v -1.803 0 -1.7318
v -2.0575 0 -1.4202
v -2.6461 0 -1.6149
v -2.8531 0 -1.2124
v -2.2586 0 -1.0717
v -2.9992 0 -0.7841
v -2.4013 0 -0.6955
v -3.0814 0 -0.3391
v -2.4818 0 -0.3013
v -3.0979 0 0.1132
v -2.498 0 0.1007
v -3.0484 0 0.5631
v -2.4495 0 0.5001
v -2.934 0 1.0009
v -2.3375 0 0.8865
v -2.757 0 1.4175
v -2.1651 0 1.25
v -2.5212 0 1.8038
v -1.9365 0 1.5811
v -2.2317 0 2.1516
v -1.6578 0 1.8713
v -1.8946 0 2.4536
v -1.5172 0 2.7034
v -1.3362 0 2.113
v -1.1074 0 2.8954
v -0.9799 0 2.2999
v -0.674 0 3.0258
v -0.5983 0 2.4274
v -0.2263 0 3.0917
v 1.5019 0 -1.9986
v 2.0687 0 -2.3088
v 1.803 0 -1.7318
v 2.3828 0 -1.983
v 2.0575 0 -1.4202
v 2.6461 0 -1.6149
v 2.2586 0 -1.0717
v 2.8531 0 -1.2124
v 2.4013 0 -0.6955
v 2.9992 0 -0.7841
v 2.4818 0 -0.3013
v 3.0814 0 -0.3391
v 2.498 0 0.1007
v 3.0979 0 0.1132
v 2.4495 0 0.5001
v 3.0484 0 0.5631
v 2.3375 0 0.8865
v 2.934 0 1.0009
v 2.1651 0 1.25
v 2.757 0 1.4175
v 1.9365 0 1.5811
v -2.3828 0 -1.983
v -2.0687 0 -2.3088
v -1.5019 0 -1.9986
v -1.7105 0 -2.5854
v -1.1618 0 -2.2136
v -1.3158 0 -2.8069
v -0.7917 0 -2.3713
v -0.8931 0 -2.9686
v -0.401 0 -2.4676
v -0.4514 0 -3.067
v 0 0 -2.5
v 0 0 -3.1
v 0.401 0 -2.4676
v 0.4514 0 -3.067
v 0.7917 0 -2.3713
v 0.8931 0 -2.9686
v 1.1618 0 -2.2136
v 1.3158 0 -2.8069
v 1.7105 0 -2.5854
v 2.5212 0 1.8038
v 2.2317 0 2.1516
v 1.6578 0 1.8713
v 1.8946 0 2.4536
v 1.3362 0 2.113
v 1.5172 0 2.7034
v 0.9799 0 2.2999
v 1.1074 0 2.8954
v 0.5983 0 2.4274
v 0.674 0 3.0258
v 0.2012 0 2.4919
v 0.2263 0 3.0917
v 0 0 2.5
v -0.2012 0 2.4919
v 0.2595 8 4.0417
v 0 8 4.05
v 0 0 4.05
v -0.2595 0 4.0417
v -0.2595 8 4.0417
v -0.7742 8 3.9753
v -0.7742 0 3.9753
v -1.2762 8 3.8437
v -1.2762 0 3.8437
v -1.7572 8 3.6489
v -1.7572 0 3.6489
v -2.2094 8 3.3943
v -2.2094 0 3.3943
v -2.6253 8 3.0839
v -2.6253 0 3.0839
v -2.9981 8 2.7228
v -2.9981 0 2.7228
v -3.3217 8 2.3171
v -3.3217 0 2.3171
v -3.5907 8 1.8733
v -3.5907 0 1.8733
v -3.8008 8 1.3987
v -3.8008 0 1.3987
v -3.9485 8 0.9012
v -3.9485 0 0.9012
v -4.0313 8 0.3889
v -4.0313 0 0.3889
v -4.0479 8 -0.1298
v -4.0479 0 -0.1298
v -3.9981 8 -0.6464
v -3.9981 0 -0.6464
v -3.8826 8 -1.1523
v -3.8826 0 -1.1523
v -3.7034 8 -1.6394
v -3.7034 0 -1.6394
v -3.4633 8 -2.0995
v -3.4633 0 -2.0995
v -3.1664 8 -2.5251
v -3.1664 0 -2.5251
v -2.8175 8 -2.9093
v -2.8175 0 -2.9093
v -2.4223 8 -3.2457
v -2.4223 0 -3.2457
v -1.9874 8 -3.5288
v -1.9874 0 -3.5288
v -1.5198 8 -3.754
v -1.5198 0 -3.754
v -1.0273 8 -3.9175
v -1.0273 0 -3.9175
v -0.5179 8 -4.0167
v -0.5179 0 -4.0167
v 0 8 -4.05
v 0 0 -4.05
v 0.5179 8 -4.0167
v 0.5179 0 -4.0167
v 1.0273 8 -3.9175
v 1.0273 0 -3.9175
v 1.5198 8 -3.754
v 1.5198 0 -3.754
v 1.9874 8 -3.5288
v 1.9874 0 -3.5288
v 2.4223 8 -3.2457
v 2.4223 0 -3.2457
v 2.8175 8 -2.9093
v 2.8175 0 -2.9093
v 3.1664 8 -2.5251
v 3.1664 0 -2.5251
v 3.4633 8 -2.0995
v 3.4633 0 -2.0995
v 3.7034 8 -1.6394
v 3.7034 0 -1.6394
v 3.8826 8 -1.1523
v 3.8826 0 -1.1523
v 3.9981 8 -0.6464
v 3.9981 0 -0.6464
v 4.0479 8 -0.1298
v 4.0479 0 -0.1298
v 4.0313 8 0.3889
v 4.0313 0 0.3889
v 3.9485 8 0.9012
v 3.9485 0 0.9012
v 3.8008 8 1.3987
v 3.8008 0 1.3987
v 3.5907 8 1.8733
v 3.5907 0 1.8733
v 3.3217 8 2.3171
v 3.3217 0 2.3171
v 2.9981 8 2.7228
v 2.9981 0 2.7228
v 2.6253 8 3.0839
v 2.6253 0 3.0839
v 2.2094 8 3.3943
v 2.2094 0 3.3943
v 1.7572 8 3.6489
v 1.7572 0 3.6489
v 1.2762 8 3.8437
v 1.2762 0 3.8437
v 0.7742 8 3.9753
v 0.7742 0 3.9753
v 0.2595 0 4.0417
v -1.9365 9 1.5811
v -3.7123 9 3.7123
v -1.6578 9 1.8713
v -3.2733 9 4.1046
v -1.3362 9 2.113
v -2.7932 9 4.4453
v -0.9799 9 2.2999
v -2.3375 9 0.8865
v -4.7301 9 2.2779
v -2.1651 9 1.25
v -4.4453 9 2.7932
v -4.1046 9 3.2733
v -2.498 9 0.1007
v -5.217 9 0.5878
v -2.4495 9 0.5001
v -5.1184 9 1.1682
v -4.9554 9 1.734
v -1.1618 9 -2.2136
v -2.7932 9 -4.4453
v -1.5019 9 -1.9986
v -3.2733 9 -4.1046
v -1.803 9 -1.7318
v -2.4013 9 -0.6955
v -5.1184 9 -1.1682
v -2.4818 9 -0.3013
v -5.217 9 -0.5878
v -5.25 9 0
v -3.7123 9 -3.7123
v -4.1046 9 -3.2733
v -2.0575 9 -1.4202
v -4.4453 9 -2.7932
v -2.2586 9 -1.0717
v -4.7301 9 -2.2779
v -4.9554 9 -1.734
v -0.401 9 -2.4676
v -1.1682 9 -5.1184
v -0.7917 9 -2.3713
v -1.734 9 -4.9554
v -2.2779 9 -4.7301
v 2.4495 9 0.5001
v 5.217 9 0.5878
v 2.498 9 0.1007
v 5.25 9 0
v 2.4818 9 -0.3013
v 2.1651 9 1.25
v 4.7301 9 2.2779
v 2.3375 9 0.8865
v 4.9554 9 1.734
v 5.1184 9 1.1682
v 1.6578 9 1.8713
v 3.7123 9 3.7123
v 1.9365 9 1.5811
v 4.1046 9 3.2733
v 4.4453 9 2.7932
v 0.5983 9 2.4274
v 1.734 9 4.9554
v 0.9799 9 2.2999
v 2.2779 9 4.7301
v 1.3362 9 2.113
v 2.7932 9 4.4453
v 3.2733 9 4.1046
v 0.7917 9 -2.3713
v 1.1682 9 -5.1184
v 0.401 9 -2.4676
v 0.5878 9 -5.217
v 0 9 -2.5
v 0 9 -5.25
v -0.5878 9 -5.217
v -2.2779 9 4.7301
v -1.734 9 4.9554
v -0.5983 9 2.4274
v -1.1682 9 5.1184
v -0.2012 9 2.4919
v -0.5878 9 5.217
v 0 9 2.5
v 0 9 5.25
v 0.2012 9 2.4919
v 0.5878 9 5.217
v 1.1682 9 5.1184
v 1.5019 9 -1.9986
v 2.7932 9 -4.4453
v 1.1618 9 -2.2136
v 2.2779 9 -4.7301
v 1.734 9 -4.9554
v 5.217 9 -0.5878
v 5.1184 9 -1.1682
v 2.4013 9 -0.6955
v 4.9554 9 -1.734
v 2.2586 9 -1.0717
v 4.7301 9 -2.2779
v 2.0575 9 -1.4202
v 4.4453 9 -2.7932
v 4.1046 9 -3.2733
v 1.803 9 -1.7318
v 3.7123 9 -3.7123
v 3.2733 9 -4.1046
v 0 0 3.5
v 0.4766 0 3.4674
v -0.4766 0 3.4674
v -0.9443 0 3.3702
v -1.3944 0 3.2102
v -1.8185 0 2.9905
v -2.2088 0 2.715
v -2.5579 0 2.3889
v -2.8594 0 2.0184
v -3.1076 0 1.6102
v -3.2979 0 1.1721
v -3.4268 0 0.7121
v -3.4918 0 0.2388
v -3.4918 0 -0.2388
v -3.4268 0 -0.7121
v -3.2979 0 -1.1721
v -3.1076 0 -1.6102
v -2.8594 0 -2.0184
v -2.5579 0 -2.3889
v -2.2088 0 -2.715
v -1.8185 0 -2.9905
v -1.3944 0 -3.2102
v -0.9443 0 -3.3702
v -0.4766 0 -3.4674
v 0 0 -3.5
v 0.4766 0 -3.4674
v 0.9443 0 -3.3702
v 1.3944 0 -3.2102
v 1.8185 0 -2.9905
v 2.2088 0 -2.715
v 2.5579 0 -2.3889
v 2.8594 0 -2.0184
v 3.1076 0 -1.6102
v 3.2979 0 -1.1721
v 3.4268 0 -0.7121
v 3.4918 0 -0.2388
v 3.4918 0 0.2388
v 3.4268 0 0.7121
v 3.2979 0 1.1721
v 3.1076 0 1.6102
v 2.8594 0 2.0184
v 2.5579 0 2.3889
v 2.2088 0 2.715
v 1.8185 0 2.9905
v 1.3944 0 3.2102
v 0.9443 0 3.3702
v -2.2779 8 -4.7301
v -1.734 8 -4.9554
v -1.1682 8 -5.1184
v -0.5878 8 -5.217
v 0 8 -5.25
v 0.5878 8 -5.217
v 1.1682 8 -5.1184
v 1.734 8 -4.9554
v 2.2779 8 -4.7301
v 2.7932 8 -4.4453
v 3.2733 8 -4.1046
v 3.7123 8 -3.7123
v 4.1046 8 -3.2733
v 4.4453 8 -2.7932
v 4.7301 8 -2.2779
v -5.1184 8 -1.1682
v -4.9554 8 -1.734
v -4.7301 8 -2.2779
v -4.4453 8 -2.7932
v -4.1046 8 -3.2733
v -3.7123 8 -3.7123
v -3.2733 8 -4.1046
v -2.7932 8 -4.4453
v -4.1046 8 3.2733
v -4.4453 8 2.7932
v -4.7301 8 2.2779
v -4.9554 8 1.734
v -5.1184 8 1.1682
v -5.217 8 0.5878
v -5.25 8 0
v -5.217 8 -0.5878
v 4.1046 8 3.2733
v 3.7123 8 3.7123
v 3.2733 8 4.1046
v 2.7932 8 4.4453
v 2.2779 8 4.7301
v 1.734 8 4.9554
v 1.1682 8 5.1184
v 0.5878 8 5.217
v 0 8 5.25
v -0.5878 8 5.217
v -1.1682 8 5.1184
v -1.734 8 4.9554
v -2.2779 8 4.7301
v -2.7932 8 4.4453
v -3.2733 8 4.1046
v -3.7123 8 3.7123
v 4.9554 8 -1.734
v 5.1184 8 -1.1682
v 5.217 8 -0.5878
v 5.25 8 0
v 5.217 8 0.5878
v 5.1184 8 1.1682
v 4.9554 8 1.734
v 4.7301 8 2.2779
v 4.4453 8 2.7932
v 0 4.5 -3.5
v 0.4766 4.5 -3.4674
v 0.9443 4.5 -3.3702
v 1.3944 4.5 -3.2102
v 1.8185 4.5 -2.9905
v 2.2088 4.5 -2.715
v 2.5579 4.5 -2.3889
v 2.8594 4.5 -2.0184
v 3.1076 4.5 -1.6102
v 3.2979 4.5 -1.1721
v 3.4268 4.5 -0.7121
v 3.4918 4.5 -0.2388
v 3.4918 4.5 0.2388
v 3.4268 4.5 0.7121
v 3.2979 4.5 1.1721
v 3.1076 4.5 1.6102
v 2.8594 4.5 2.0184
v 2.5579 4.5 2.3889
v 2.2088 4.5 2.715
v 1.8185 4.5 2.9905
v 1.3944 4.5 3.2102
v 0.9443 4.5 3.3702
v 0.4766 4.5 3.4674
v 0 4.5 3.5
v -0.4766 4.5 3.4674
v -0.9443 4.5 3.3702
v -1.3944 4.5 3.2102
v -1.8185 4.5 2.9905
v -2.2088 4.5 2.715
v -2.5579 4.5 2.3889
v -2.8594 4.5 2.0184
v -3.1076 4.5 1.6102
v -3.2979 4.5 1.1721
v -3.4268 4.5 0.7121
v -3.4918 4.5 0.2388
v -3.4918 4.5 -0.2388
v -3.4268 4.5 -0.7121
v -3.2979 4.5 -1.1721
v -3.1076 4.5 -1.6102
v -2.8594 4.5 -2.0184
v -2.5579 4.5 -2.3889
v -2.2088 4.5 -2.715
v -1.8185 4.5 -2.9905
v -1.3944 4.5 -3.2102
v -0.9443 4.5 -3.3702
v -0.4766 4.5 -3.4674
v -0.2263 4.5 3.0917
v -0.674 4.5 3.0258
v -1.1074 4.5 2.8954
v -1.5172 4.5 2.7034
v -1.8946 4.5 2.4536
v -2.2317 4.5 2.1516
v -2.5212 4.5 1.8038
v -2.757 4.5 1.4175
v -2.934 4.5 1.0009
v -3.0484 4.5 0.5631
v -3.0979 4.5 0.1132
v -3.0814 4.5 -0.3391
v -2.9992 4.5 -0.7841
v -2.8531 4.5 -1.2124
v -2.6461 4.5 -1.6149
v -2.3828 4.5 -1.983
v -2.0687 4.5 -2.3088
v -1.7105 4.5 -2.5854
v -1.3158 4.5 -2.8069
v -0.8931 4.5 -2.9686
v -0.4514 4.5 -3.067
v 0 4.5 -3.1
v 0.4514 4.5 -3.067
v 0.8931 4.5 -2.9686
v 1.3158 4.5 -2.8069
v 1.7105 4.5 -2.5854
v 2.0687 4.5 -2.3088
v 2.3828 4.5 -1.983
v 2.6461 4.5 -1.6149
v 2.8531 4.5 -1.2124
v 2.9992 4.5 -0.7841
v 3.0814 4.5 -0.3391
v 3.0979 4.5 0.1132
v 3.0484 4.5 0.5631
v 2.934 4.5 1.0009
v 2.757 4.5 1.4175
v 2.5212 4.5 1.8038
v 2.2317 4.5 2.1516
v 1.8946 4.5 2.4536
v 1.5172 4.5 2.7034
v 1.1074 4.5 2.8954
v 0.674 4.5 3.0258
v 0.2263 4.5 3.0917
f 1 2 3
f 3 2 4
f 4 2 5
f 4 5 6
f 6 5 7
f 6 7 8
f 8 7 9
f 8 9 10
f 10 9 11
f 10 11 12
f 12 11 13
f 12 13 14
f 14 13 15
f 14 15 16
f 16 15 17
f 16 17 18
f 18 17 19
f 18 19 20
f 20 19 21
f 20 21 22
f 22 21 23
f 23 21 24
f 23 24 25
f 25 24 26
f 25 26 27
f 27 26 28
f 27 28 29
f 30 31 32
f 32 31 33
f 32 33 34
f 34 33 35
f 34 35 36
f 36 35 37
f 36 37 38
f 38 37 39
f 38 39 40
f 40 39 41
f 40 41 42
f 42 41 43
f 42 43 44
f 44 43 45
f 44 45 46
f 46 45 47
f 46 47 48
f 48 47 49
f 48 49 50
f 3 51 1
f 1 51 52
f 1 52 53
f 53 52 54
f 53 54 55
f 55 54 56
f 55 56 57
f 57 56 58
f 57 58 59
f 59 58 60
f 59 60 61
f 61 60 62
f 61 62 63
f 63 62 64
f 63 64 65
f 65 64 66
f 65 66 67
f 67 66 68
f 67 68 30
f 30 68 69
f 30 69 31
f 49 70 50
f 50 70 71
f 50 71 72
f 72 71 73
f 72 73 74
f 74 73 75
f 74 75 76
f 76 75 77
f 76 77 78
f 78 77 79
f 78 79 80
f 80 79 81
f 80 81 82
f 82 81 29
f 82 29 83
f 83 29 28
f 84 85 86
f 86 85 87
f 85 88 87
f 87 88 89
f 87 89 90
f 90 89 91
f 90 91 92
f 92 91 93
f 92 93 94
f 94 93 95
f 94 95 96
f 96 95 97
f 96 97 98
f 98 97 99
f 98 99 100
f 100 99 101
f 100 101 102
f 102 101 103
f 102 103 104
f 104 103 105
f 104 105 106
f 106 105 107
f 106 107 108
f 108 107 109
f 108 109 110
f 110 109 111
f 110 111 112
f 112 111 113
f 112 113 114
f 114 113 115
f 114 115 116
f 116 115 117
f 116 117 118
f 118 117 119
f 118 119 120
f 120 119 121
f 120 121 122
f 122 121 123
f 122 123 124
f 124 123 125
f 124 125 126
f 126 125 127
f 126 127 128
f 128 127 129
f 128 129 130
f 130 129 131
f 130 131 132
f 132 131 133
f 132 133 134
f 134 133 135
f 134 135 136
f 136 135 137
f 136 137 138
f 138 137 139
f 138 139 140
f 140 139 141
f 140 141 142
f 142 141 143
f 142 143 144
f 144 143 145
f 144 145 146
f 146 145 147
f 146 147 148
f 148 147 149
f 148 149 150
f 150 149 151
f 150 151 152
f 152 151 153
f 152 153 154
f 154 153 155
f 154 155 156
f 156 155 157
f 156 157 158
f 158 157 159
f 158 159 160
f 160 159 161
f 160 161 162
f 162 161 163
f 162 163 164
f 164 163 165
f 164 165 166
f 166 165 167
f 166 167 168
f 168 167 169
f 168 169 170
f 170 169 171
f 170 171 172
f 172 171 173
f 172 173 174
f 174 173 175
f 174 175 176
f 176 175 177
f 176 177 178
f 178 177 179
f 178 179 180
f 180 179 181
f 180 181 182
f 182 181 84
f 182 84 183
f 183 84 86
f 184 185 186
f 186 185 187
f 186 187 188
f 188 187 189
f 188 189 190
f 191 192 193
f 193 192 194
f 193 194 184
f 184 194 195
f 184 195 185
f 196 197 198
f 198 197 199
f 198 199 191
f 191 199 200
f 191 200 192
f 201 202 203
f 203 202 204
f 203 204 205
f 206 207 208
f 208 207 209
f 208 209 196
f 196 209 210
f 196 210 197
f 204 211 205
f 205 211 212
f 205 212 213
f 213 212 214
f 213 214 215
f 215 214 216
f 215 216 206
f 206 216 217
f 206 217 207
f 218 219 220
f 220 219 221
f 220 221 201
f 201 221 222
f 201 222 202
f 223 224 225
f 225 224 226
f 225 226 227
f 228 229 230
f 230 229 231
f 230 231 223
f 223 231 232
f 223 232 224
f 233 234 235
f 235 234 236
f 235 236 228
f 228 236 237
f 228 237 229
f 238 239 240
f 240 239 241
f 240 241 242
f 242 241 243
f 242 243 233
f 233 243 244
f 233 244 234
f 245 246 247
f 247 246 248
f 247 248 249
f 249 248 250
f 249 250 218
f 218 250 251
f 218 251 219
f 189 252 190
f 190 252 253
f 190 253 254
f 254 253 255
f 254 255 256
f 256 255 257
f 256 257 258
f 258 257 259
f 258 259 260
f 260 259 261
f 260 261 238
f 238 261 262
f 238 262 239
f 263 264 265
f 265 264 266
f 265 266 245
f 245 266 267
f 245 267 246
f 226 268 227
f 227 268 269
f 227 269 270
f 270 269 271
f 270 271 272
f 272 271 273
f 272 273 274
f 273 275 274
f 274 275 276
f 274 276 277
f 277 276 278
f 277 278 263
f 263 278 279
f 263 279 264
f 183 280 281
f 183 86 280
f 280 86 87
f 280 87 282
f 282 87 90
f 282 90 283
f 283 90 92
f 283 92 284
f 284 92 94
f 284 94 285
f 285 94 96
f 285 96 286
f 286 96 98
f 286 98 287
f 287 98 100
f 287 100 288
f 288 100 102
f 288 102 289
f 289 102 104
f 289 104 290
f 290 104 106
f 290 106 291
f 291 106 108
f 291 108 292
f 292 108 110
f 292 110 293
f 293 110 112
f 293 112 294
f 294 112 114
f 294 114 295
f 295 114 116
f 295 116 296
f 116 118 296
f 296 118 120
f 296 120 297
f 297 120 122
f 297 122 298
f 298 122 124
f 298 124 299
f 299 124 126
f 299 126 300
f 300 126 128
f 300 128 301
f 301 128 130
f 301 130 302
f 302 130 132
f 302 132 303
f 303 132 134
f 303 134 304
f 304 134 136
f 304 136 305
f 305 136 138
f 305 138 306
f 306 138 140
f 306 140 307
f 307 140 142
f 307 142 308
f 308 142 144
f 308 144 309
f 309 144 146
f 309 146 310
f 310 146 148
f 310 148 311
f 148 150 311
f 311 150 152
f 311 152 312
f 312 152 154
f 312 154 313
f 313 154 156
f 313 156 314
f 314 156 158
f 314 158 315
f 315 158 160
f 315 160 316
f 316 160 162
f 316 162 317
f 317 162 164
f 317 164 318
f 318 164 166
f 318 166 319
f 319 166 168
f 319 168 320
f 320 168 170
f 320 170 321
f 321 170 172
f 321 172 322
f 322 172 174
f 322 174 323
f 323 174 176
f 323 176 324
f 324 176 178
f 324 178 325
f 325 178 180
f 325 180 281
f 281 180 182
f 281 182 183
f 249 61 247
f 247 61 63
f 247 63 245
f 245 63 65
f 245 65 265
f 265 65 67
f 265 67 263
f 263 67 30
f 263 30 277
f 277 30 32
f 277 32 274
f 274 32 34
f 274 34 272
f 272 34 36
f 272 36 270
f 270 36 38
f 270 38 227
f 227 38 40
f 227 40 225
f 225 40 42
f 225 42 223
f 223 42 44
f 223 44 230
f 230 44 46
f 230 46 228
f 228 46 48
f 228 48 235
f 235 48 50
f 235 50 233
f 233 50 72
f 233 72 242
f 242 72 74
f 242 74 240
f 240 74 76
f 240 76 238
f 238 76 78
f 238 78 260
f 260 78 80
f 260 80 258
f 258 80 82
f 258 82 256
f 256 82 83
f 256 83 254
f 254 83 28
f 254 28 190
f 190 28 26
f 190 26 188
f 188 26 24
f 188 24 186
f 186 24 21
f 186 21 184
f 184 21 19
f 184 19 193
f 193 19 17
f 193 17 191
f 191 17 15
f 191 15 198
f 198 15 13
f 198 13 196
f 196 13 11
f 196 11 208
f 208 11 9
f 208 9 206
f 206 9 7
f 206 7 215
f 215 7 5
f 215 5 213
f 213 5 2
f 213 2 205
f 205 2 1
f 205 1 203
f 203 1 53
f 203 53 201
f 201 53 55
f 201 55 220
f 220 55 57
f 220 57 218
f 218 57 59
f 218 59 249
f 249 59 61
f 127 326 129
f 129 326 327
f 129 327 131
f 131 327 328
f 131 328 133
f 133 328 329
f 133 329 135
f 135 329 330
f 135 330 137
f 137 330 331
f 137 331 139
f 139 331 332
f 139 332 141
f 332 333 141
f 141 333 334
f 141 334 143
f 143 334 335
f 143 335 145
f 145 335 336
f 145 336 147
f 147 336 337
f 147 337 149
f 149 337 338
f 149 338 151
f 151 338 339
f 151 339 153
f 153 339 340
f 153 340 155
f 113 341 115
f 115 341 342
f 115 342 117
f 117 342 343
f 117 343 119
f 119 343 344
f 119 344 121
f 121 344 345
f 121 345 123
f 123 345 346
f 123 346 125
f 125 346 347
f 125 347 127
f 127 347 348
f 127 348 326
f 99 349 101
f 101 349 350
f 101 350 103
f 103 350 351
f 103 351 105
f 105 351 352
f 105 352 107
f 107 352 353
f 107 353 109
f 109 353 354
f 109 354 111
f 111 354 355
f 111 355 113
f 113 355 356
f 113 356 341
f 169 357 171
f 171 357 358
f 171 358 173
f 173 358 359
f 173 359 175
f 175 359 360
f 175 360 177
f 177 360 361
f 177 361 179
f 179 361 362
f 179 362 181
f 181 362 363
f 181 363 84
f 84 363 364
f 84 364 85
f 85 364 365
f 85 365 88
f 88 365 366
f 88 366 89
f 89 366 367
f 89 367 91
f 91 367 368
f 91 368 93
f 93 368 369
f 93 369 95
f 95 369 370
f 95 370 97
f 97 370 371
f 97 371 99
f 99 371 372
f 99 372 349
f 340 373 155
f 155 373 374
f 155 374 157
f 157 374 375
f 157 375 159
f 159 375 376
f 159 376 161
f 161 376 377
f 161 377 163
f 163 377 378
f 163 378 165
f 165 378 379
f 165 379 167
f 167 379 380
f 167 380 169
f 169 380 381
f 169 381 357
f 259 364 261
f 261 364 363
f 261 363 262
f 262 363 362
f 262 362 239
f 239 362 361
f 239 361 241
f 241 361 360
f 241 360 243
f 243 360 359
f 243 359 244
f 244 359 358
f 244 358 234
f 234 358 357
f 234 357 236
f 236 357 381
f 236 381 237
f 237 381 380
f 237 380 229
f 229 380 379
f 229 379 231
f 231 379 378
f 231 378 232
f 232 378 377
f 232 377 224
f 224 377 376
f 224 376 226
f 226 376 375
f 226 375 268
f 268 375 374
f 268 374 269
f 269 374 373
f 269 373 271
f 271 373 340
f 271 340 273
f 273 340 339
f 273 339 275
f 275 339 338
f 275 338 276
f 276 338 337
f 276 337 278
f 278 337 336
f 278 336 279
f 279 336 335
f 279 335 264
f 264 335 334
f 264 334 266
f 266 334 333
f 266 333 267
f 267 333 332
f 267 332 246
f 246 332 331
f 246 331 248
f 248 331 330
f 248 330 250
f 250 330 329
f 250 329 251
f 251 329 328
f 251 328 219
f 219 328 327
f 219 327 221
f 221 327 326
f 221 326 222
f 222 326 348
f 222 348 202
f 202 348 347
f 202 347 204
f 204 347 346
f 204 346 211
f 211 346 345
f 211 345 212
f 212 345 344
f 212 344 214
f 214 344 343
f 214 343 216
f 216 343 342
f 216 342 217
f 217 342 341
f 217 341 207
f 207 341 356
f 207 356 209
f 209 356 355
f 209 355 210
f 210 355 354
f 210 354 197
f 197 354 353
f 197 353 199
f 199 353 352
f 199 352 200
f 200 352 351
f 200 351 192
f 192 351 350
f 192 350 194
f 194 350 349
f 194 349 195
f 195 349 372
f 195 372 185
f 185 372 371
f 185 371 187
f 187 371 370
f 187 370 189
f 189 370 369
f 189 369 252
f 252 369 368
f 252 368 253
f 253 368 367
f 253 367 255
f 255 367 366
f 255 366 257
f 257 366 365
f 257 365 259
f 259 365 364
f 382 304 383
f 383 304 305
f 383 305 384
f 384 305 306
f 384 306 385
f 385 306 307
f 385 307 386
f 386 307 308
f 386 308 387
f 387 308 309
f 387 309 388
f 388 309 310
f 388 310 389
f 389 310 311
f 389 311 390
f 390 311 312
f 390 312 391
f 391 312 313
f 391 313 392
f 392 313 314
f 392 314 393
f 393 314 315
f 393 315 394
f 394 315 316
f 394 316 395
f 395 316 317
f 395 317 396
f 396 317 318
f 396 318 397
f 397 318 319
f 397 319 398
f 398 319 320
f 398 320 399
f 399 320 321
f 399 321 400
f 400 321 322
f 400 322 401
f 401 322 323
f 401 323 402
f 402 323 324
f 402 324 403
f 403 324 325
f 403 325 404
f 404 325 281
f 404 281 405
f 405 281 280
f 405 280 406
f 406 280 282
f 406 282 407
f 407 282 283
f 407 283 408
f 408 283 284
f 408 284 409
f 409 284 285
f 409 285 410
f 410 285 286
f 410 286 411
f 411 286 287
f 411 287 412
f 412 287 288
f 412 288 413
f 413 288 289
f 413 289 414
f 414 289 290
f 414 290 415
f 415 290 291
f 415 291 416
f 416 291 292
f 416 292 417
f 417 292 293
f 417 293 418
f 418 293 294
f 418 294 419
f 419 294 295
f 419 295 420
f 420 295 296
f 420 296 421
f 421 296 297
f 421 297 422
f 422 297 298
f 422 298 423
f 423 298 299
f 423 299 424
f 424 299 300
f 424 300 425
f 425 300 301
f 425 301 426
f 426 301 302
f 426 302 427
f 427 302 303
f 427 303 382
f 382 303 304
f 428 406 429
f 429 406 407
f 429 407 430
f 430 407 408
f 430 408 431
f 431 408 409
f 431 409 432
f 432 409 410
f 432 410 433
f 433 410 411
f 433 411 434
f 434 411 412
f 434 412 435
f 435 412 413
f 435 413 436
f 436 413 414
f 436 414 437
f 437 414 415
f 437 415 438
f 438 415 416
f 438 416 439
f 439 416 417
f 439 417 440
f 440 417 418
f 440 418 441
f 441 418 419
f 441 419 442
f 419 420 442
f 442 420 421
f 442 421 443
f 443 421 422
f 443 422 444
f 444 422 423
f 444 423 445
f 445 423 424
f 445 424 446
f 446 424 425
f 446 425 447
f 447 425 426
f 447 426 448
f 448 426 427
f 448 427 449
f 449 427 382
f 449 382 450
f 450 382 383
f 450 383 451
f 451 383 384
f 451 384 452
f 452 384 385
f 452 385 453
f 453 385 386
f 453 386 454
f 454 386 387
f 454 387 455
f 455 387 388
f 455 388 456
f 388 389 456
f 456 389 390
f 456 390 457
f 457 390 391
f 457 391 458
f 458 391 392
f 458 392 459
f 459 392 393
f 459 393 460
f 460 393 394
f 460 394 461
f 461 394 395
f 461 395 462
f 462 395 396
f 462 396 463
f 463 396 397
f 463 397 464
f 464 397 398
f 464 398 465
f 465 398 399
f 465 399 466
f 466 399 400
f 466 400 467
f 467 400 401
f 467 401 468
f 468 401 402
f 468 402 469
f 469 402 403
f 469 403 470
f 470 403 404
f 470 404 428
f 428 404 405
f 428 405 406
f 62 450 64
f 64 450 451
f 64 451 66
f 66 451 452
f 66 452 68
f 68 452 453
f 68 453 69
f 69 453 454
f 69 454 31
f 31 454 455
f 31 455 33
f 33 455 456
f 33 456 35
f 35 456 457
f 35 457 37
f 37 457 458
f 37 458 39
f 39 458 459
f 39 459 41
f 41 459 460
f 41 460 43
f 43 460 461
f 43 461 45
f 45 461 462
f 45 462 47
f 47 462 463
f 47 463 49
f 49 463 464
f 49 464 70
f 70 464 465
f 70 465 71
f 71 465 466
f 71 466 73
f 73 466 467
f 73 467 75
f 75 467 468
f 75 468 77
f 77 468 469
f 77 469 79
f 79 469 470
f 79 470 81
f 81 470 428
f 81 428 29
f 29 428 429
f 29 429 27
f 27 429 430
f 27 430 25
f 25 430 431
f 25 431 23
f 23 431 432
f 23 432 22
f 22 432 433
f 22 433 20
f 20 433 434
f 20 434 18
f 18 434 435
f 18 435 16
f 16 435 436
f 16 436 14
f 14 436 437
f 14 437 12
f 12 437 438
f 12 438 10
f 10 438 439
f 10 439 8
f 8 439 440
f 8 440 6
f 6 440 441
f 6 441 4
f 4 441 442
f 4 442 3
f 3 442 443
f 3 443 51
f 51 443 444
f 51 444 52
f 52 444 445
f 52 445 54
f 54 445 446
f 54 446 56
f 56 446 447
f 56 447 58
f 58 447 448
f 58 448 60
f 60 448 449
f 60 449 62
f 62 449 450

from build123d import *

# Parameters (mm, degrees)
SKETCH1_R           = 4.05
SKETCH1_R_2         = 2.5
BOSS_EXTRUDE1_DEPTH = 9
BOSS_EXTRUDE2_START = -1
SKETCH2_R           = 5.25
SKETCH2_R_2         = 2.5
BOSS_EXTRUDE2_DEPTH = 1
SKETCH3_R           = 3.5
SKETCH3_R_2         = 3.1
CUT_EXTRUDE1_DEPTH  = 4.5


with BuildPart() as part:
    # Sketch1 → Boss-Extrude1 (new body)
    with BuildSketch(Plane(origin=(0, 0, 0), x_dir=(1, 0, 0), z_dir=(0, 1, 0))):
        with Locations(Location((0, 0, 0), (0, 0, 270))):
            Circle(SKETCH1_R)
        with Locations(Location((0, 0, 0), (0, 0, 270))):
            Circle(SKETCH1_R_2, mode=Mode.SUBTRACT)
    extrude(amount=BOSS_EXTRUDE1_DEPTH)

    # Sketch2 → Boss-Extrude2 (add)
    with BuildSketch(Plane(origin=(0, 9, 0), x_dir=(1, 0, 0), z_dir=(0, 1, 0)).offset(BOSS_EXTRUDE2_START)):
        with Locations(Location((0, 0, 0), (0, 0, 270))):
            Circle(SKETCH2_R)
        with Locations(Location((0, 0, 0), (0, 0, 270))):
            Circle(SKETCH2_R_2, mode=Mode.SUBTRACT)
    extrude(amount=BOSS_EXTRUDE2_DEPTH)

    # Sketch3 → Cut-Extrude1 (cut)
    with BuildSketch(Plane.XZ):
        with Locations(Location((0, 0, 0), (0, 0, 270))):
            Circle(SKETCH3_R)
        with Locations(Location((0, 0, 0), (0, 0, 270))):
            Circle(SKETCH3_R_2, mode=Mode.SUBTRACT)
    extrude(amount=-CUT_EXTRUDE1_DEPTH, mode=Mode.SUBTRACT)


solid = part.part
